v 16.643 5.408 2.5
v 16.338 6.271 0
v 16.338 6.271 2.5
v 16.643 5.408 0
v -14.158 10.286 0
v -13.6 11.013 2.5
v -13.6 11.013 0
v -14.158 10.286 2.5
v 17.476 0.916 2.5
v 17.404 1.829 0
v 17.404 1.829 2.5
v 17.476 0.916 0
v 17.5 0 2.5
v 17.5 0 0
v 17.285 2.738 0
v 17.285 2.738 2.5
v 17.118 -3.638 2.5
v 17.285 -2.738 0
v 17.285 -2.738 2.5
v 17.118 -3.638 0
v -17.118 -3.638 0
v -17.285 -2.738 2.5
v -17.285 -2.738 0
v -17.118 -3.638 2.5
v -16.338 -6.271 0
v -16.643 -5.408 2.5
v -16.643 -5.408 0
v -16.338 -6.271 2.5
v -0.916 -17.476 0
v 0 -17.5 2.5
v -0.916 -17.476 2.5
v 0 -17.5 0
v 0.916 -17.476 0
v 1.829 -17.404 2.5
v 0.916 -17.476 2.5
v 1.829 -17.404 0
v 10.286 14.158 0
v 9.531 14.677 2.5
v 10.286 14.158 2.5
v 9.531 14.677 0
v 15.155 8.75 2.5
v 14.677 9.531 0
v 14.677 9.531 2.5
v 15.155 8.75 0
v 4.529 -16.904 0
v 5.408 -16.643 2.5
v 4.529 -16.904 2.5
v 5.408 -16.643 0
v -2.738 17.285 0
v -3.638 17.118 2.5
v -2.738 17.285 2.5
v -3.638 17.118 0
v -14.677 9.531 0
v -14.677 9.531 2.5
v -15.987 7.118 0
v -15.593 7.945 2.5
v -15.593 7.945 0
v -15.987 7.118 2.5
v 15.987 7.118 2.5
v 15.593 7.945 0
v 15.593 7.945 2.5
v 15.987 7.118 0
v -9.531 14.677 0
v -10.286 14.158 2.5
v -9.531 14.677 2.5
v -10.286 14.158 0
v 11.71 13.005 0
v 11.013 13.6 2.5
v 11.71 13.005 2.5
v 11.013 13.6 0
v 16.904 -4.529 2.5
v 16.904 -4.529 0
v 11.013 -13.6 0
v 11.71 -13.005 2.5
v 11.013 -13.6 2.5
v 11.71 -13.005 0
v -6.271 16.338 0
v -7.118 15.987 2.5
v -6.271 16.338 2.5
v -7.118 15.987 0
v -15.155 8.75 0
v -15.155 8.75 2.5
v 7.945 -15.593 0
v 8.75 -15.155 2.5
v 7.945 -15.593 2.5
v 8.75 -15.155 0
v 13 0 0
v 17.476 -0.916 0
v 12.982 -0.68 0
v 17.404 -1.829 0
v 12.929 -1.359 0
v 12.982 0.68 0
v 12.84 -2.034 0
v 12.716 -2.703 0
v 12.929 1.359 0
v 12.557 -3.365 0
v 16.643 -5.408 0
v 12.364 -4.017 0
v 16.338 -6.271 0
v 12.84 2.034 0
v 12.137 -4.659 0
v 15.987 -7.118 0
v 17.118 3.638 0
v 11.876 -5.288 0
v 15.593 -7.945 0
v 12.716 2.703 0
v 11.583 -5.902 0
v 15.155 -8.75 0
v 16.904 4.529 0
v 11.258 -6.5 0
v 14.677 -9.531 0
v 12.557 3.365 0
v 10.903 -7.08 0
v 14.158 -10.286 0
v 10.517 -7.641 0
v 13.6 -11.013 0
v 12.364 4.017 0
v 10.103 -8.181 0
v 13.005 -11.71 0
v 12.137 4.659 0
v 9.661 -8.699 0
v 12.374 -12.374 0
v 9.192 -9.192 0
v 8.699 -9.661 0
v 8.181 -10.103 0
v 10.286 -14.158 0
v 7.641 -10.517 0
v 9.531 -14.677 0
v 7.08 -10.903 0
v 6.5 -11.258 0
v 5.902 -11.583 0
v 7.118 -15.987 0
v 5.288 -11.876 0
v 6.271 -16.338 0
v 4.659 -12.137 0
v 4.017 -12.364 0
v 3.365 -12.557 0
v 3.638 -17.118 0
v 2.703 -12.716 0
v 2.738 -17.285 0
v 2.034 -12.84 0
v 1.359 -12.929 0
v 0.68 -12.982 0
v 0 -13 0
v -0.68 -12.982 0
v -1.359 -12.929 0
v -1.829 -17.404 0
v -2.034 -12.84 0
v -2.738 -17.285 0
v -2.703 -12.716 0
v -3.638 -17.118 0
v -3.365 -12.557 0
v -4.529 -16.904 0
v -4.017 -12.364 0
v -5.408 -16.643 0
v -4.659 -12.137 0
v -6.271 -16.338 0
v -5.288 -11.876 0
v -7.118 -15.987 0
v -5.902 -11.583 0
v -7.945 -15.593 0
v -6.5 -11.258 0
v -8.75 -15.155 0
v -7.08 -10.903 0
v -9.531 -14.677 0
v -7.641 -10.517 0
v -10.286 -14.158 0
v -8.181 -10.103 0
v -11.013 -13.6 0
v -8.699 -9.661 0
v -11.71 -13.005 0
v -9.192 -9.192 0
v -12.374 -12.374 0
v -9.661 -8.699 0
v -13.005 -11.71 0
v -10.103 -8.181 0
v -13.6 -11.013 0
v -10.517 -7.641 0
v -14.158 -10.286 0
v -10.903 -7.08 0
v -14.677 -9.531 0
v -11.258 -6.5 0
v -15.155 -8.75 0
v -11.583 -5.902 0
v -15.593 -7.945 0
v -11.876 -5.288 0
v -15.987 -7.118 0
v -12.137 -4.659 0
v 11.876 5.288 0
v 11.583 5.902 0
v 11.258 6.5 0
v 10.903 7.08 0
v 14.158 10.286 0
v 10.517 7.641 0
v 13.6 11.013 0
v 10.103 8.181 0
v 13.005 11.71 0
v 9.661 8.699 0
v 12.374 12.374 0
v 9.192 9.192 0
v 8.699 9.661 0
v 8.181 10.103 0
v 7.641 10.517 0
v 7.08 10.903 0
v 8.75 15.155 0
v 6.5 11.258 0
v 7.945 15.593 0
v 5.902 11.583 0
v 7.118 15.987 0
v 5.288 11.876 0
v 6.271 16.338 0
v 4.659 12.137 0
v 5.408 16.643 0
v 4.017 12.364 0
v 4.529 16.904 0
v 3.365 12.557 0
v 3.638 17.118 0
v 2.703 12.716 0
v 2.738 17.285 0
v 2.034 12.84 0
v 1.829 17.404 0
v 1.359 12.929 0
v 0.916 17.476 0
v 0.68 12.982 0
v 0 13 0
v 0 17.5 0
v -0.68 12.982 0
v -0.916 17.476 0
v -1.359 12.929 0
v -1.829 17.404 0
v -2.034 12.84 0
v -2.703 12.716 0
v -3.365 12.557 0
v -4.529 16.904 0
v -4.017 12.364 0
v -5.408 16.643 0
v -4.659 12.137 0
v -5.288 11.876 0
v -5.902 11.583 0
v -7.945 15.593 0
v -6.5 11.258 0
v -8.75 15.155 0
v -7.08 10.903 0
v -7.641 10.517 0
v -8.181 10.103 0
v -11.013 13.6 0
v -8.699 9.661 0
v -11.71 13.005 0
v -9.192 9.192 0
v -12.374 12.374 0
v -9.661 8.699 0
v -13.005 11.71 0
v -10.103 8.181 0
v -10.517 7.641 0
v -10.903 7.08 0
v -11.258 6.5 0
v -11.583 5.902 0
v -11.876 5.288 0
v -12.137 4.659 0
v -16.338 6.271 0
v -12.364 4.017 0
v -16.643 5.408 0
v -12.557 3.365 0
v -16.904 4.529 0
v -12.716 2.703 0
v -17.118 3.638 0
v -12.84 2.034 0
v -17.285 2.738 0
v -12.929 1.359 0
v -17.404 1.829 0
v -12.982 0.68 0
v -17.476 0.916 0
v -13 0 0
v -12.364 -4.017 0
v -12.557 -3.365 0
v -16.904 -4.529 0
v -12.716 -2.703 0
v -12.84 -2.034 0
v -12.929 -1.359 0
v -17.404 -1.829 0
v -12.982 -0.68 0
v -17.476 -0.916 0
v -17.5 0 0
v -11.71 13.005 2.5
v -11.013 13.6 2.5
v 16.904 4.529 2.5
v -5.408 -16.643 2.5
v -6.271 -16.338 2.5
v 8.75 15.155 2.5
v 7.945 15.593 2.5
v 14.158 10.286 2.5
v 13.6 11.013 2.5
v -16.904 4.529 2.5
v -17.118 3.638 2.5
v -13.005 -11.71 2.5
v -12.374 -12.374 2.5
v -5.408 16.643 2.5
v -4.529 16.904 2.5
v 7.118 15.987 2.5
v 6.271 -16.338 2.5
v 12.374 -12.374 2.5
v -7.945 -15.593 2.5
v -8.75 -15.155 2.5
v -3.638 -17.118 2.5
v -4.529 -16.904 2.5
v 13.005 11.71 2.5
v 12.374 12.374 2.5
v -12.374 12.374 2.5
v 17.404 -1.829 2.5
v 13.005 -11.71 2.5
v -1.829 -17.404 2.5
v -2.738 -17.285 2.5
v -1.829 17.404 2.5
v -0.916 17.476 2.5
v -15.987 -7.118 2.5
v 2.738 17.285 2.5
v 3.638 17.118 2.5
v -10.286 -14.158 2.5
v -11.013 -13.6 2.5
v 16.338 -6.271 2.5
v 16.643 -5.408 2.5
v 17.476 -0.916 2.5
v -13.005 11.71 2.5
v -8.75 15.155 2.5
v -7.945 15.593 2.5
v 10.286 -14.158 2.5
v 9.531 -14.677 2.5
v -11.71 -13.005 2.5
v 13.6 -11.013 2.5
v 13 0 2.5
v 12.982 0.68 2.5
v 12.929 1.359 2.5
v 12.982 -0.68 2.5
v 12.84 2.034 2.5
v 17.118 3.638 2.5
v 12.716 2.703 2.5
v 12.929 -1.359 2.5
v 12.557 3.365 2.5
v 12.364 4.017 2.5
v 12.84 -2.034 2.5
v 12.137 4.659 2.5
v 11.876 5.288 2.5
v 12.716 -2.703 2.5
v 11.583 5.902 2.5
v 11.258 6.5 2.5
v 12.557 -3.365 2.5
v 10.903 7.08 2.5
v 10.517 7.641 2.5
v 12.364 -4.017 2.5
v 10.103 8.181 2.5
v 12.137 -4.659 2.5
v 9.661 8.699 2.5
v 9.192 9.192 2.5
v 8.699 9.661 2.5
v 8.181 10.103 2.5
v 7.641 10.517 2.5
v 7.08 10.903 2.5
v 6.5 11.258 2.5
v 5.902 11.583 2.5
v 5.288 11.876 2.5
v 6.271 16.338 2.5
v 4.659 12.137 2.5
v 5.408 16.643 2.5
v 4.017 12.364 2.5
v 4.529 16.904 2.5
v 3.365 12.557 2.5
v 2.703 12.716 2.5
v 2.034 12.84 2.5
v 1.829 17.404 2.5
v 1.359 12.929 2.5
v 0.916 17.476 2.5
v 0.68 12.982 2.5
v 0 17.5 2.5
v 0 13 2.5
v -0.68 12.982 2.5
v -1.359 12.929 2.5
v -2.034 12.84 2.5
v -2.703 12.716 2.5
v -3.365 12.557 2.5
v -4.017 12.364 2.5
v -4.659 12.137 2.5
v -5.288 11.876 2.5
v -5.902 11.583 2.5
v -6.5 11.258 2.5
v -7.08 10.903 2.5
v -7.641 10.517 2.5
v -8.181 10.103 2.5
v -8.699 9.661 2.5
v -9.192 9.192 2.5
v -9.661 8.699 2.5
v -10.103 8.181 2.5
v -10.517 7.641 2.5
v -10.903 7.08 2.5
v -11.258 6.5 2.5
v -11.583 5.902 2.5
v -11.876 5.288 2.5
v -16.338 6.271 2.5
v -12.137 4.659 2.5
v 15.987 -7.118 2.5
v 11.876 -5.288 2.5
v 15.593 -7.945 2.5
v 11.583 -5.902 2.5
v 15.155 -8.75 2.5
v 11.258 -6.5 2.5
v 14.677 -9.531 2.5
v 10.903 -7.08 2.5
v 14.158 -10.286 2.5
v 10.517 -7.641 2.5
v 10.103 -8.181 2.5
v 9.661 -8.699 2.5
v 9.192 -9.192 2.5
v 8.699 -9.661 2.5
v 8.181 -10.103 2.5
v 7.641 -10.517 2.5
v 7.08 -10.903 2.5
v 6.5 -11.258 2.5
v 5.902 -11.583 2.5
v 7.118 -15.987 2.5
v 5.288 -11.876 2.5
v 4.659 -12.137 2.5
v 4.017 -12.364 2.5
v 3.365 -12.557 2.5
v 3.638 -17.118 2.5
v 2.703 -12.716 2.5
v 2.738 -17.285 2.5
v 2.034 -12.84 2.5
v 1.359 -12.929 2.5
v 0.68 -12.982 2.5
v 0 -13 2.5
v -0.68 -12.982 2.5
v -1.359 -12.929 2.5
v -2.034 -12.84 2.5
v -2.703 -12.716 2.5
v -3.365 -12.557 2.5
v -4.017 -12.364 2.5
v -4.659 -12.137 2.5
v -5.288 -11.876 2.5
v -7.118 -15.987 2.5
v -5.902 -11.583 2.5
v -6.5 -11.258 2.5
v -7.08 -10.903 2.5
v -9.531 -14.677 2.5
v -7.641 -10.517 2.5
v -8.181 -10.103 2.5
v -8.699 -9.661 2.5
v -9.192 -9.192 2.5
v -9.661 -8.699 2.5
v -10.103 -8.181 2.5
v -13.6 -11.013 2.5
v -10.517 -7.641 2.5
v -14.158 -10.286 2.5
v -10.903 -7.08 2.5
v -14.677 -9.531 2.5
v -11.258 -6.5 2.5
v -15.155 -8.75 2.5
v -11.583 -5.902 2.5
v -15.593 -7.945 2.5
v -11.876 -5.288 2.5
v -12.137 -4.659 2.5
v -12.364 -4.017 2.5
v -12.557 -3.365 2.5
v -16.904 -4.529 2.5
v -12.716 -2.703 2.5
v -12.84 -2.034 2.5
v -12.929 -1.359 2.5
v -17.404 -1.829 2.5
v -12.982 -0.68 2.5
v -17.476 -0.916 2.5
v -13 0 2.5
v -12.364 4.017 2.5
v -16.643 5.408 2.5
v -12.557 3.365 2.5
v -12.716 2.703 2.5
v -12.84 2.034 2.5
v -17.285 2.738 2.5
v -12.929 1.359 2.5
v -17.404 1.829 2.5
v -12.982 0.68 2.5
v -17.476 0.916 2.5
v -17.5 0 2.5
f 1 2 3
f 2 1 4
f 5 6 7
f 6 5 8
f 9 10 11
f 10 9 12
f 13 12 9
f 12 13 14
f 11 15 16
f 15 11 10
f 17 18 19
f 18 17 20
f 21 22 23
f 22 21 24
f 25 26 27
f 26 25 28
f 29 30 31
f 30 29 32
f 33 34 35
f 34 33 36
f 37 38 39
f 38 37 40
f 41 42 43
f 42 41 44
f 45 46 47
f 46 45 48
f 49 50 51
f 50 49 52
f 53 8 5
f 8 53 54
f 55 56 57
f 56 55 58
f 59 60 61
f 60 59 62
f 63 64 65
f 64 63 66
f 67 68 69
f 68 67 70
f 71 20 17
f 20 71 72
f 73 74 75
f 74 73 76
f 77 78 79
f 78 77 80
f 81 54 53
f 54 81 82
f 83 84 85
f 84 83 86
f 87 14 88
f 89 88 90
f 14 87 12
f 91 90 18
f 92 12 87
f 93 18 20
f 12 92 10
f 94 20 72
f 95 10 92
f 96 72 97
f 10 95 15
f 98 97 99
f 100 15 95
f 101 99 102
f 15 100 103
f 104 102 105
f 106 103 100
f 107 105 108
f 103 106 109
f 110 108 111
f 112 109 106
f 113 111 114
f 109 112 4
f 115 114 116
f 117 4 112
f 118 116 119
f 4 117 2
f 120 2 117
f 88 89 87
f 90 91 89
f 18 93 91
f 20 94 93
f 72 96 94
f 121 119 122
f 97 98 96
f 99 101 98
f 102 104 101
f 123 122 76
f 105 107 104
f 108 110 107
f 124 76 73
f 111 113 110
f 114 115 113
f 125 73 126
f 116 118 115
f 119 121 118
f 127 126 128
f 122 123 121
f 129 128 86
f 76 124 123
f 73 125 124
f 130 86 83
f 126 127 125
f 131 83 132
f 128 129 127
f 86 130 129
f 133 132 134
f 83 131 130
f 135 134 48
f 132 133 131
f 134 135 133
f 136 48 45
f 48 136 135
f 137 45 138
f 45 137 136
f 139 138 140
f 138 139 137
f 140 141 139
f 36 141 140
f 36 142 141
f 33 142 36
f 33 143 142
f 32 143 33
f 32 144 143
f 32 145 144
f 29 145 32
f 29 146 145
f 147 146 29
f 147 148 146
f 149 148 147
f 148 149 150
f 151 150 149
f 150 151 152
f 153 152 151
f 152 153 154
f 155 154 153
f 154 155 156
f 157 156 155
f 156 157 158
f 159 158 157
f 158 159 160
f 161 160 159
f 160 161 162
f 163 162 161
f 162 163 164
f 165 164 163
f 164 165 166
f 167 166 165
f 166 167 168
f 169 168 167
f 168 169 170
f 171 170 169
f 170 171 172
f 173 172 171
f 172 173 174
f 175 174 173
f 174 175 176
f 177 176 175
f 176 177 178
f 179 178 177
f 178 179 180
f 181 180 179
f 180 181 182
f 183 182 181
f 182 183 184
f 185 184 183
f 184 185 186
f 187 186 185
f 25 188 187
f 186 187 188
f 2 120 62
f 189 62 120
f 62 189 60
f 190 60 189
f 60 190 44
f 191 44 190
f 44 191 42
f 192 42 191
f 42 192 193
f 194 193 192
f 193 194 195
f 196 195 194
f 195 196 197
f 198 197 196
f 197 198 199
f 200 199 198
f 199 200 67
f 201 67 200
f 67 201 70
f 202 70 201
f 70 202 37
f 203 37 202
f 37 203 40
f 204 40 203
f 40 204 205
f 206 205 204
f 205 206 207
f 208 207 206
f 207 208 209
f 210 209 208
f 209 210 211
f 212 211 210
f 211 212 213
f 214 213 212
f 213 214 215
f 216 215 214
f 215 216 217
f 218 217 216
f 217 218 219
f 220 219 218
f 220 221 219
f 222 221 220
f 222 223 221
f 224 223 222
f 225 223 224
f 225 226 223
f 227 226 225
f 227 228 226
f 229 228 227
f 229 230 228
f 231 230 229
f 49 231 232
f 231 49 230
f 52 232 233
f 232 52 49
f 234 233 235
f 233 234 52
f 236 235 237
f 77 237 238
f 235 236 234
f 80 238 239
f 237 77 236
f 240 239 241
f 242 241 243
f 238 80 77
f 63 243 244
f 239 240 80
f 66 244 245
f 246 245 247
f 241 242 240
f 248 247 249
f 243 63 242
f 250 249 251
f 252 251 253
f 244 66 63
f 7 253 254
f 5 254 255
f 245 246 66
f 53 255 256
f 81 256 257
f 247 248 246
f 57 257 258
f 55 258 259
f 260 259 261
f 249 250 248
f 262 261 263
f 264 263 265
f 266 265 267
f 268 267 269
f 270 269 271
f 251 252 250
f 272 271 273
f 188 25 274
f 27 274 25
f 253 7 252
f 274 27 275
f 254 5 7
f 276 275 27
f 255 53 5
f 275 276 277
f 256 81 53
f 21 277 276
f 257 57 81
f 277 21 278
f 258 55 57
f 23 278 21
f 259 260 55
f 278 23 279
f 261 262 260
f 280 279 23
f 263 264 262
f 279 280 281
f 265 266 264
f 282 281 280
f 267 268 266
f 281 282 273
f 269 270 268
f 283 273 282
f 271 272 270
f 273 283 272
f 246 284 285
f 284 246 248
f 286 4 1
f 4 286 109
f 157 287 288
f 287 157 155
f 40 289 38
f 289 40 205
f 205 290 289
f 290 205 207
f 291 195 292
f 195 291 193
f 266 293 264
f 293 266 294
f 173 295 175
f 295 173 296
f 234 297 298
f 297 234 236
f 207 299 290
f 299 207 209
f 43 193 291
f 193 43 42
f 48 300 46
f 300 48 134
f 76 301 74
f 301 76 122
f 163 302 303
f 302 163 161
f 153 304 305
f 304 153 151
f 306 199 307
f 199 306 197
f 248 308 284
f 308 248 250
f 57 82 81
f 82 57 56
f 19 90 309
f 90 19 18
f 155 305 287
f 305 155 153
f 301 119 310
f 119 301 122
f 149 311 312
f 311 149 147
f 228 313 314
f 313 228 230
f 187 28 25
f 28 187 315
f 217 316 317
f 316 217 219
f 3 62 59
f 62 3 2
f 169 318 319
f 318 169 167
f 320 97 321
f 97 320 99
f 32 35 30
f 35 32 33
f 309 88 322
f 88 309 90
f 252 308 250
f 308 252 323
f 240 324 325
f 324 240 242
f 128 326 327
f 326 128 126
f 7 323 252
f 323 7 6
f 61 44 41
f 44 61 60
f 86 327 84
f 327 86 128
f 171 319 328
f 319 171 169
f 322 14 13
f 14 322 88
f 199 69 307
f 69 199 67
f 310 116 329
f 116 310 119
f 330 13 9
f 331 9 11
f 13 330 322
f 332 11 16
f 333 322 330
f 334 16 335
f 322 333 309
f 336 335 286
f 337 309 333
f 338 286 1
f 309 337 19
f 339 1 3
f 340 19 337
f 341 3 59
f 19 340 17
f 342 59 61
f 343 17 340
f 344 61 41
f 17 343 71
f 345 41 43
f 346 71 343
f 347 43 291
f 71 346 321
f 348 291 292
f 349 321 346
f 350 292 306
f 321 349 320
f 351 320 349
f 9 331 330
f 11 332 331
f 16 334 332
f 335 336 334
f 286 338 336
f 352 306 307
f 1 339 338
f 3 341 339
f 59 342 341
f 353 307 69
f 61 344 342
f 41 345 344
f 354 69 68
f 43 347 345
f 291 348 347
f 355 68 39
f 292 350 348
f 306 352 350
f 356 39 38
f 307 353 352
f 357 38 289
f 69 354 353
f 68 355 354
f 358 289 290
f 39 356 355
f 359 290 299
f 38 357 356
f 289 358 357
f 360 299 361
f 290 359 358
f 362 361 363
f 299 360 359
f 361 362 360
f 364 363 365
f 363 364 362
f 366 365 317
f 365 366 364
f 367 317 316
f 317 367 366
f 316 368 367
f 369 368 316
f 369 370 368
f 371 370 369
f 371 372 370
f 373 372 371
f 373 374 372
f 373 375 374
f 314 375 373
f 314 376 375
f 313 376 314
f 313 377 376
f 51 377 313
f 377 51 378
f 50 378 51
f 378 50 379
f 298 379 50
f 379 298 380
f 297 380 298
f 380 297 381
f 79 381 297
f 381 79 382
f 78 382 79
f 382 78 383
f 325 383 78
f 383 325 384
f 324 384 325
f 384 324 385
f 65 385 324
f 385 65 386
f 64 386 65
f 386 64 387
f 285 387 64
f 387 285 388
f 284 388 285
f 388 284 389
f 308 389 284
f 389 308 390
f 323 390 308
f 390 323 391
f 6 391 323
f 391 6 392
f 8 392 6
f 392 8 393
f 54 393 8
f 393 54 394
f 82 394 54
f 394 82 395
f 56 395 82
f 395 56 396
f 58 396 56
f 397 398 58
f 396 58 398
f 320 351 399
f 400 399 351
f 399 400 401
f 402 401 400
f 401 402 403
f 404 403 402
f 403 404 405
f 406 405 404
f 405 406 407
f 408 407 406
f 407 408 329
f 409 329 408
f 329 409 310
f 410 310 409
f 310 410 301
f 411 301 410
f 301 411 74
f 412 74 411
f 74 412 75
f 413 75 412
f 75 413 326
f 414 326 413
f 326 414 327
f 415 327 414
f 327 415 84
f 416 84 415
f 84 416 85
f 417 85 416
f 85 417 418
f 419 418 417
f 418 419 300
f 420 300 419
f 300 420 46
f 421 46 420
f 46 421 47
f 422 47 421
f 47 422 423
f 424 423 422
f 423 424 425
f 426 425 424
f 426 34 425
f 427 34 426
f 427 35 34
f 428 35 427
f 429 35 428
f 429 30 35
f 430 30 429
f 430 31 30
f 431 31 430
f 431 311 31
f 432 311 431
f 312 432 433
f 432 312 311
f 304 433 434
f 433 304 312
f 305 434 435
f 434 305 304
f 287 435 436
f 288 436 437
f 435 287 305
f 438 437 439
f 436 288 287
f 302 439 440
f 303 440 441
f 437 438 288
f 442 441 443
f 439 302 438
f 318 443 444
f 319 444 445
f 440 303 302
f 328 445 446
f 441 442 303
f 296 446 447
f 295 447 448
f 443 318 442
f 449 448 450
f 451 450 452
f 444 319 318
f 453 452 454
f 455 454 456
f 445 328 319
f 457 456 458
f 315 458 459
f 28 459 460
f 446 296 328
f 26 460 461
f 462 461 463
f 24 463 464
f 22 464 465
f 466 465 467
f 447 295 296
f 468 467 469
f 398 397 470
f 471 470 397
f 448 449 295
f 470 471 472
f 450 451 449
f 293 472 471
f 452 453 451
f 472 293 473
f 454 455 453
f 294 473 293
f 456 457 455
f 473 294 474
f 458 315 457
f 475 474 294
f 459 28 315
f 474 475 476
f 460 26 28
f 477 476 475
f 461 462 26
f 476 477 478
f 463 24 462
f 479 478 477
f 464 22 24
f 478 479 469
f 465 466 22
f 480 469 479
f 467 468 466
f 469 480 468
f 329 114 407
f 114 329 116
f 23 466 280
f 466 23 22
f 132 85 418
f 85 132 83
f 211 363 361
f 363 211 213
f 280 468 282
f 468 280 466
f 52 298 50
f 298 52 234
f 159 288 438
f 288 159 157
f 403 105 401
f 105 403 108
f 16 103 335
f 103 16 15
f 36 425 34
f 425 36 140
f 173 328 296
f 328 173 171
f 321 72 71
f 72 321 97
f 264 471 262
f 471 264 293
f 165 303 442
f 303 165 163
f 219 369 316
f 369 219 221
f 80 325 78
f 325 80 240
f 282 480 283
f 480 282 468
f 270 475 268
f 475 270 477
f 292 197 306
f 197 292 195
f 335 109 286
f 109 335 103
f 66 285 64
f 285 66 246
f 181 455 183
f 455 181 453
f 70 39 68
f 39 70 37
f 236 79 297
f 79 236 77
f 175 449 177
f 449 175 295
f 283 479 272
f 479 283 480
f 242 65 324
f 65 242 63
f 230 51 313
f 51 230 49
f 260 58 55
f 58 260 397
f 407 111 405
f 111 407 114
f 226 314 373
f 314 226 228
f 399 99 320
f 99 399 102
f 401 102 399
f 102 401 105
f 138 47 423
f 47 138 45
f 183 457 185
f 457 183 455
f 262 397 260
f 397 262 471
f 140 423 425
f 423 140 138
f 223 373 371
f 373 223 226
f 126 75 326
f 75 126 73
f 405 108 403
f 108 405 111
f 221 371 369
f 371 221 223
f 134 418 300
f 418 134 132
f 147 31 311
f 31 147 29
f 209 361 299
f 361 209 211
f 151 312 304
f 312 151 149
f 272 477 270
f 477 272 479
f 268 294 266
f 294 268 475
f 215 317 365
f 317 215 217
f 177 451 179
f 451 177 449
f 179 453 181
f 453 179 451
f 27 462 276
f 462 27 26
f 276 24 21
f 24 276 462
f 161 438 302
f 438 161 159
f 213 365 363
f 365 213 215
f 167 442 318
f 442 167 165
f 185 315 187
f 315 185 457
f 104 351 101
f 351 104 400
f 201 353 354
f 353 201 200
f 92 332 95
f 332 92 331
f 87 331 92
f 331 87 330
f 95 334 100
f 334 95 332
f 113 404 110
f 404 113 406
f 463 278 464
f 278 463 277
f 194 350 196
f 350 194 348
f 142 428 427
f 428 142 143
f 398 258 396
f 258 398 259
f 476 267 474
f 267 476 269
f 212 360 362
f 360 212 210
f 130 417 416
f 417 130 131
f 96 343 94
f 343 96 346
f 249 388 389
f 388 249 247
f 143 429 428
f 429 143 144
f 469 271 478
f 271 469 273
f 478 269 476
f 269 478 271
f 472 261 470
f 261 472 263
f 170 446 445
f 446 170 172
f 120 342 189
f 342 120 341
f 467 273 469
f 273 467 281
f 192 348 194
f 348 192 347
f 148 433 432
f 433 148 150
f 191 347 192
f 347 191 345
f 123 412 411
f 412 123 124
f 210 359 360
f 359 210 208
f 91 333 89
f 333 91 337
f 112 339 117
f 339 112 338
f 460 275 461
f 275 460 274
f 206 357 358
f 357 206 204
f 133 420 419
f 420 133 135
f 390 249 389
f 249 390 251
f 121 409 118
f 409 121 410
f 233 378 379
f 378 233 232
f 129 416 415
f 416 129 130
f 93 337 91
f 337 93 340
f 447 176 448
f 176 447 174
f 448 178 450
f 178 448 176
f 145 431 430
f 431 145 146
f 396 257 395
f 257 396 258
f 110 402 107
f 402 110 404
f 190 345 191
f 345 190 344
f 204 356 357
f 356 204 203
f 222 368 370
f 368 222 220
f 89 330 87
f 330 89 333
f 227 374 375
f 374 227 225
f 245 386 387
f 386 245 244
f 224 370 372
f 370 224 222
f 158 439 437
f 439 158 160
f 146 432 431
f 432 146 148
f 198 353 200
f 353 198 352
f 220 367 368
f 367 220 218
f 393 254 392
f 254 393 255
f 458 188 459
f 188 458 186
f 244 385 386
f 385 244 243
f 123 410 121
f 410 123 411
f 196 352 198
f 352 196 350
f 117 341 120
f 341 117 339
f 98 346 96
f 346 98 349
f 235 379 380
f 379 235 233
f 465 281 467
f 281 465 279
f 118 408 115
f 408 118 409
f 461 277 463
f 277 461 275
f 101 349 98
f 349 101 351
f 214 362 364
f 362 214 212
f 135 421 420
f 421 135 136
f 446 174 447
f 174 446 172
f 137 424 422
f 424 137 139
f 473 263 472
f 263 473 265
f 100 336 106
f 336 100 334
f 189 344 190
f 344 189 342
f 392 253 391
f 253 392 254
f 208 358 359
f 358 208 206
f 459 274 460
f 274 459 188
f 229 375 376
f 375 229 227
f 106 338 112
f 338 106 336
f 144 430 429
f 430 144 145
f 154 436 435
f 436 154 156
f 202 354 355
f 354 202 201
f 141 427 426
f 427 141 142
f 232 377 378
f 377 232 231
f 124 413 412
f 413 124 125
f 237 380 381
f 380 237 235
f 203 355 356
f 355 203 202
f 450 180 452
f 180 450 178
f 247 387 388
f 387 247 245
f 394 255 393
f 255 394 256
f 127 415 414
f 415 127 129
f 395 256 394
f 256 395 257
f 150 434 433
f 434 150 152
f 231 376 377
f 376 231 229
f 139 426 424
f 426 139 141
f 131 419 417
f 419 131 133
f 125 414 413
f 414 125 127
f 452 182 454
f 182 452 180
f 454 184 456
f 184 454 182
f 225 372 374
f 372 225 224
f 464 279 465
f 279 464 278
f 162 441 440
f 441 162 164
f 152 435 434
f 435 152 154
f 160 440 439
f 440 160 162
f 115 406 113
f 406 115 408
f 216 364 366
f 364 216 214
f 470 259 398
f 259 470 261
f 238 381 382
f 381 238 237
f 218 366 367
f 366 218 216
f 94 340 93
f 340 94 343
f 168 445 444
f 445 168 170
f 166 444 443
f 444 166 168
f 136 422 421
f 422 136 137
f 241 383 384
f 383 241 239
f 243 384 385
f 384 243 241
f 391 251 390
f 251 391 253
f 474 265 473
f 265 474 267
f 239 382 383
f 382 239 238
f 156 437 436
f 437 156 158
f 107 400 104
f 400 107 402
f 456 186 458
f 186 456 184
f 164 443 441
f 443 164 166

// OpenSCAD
$fn=120;

externalDiameter=35;
internalDisameter=26;
thickness=2.5;

difference() {
  cylinder(h=thickness,d=externalDiameter);
  cylinder(h=thickness,d=internalDisameter);

}
